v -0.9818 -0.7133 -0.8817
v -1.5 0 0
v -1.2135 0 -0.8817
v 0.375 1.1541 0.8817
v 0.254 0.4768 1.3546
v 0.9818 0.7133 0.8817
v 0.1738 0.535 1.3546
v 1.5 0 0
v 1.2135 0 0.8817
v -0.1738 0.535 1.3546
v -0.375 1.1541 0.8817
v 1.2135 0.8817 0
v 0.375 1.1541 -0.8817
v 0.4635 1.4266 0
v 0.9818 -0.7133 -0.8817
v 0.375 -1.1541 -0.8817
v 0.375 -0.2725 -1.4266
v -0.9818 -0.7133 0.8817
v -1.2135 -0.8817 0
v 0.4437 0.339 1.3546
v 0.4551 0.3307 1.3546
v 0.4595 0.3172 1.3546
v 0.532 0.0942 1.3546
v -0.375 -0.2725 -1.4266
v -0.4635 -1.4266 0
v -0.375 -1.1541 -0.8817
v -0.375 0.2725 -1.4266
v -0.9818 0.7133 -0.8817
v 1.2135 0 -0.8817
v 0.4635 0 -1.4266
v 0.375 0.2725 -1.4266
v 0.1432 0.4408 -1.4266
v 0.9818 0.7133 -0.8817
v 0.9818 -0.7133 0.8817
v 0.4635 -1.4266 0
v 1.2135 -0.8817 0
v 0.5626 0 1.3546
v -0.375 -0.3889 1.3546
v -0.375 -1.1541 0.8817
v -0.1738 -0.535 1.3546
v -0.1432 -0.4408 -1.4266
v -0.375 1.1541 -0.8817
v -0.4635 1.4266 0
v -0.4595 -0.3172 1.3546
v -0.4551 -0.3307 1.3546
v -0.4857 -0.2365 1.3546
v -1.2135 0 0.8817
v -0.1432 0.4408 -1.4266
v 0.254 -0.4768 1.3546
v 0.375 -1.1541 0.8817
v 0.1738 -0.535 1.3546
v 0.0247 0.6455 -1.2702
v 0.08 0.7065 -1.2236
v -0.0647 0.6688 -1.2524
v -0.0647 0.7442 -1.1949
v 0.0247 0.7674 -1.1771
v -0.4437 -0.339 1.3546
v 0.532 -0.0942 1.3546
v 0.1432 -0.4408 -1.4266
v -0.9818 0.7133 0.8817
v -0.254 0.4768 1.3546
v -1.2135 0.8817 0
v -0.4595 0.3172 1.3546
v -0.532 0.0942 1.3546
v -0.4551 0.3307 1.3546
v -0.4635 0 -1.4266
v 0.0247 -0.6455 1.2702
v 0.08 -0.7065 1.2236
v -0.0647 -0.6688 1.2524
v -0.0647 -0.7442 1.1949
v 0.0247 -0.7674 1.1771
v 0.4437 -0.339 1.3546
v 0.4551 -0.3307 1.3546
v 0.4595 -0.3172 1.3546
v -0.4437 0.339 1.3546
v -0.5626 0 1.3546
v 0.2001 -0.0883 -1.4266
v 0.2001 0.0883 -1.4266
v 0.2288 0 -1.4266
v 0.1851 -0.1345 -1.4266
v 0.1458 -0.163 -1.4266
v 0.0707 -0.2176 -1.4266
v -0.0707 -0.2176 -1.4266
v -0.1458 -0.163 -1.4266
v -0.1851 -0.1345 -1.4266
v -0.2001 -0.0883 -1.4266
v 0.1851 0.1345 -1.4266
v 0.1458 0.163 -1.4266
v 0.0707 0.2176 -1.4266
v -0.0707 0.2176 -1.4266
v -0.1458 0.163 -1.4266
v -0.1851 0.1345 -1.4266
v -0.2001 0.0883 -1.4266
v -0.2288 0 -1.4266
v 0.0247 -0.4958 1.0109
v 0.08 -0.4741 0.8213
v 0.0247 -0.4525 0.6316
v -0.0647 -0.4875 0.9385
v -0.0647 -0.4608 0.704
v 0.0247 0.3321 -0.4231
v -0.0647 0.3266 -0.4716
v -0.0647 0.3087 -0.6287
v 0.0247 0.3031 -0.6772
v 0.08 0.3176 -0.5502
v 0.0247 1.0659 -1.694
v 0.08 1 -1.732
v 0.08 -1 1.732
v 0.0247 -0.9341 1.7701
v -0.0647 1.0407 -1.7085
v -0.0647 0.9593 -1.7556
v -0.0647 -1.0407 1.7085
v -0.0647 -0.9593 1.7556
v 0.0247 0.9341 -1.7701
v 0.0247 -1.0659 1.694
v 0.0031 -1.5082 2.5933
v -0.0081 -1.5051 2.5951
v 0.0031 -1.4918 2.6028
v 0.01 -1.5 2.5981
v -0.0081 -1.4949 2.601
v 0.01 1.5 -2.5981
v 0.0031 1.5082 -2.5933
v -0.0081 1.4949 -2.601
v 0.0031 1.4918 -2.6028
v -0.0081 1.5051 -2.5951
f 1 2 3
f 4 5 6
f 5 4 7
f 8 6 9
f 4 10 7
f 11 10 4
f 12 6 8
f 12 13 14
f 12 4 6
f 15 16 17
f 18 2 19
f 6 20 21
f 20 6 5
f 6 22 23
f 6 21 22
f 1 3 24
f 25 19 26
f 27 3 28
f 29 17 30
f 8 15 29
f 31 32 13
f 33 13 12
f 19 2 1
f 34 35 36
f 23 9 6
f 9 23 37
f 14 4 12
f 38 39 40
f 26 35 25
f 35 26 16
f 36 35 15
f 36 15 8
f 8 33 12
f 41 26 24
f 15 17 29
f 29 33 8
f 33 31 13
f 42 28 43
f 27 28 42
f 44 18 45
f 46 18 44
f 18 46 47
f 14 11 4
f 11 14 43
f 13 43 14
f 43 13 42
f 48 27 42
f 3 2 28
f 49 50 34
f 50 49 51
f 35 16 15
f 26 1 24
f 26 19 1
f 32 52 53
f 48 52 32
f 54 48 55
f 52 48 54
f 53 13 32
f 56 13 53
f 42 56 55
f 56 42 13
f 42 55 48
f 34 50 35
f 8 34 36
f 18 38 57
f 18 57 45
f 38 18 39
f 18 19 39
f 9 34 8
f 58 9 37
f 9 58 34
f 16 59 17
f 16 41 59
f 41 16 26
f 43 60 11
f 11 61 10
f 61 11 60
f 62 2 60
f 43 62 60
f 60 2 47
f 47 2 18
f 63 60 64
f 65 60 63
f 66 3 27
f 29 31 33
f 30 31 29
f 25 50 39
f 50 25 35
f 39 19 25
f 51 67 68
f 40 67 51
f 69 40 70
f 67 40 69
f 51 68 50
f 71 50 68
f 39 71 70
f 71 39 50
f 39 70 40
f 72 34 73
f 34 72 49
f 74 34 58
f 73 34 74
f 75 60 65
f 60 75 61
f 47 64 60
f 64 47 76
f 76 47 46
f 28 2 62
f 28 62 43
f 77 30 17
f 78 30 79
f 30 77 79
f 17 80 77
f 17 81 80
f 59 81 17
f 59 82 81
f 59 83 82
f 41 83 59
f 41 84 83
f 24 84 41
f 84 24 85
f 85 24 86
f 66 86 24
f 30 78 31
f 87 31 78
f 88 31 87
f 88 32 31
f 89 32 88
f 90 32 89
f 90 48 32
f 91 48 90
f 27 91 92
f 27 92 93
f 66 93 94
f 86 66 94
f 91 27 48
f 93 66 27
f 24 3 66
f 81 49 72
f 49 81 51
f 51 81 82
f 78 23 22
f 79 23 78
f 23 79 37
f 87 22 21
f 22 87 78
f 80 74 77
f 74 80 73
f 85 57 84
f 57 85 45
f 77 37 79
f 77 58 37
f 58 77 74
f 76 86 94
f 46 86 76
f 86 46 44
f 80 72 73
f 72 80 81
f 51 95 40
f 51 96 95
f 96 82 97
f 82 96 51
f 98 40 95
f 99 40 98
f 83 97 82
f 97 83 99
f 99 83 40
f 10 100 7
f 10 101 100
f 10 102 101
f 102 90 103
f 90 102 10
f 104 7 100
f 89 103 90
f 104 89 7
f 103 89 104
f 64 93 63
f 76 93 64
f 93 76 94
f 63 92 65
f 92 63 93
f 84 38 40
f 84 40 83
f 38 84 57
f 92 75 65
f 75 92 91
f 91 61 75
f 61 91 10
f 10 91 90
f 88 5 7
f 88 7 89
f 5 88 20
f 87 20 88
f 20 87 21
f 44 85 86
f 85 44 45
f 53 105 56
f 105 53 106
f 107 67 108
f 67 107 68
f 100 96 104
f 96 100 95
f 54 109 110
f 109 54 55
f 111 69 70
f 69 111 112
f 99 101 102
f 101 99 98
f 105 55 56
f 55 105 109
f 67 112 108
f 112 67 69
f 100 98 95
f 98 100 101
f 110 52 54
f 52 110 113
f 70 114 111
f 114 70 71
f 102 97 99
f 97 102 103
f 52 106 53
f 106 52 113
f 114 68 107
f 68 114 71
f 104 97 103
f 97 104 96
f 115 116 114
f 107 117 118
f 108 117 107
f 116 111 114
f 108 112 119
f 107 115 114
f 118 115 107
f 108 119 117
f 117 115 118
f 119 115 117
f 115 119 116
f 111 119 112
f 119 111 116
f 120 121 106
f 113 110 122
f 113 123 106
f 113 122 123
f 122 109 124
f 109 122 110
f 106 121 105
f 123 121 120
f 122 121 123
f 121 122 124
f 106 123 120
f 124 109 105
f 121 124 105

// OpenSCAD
color ("Olive")
difference () {
	sphere (d=3, $fn=10, center = true);
   cylinder(h = 5, r1 = .1, r2 = .7, $fn=10, center = true);
}
rotate([30, 0, 0]){
cylinder (h = 4, r = .08, $fn=5, center=true);
translate ([0, 0, 2.5])
   cylinder(h = 1, r1 = .08, r2 = .01, $fn=5, center = true);
translate ([0, 0, -2.5])
   cylinder(h = 1, r1 = .01, r2 = .08, $fn=5, center = true);
 }    
